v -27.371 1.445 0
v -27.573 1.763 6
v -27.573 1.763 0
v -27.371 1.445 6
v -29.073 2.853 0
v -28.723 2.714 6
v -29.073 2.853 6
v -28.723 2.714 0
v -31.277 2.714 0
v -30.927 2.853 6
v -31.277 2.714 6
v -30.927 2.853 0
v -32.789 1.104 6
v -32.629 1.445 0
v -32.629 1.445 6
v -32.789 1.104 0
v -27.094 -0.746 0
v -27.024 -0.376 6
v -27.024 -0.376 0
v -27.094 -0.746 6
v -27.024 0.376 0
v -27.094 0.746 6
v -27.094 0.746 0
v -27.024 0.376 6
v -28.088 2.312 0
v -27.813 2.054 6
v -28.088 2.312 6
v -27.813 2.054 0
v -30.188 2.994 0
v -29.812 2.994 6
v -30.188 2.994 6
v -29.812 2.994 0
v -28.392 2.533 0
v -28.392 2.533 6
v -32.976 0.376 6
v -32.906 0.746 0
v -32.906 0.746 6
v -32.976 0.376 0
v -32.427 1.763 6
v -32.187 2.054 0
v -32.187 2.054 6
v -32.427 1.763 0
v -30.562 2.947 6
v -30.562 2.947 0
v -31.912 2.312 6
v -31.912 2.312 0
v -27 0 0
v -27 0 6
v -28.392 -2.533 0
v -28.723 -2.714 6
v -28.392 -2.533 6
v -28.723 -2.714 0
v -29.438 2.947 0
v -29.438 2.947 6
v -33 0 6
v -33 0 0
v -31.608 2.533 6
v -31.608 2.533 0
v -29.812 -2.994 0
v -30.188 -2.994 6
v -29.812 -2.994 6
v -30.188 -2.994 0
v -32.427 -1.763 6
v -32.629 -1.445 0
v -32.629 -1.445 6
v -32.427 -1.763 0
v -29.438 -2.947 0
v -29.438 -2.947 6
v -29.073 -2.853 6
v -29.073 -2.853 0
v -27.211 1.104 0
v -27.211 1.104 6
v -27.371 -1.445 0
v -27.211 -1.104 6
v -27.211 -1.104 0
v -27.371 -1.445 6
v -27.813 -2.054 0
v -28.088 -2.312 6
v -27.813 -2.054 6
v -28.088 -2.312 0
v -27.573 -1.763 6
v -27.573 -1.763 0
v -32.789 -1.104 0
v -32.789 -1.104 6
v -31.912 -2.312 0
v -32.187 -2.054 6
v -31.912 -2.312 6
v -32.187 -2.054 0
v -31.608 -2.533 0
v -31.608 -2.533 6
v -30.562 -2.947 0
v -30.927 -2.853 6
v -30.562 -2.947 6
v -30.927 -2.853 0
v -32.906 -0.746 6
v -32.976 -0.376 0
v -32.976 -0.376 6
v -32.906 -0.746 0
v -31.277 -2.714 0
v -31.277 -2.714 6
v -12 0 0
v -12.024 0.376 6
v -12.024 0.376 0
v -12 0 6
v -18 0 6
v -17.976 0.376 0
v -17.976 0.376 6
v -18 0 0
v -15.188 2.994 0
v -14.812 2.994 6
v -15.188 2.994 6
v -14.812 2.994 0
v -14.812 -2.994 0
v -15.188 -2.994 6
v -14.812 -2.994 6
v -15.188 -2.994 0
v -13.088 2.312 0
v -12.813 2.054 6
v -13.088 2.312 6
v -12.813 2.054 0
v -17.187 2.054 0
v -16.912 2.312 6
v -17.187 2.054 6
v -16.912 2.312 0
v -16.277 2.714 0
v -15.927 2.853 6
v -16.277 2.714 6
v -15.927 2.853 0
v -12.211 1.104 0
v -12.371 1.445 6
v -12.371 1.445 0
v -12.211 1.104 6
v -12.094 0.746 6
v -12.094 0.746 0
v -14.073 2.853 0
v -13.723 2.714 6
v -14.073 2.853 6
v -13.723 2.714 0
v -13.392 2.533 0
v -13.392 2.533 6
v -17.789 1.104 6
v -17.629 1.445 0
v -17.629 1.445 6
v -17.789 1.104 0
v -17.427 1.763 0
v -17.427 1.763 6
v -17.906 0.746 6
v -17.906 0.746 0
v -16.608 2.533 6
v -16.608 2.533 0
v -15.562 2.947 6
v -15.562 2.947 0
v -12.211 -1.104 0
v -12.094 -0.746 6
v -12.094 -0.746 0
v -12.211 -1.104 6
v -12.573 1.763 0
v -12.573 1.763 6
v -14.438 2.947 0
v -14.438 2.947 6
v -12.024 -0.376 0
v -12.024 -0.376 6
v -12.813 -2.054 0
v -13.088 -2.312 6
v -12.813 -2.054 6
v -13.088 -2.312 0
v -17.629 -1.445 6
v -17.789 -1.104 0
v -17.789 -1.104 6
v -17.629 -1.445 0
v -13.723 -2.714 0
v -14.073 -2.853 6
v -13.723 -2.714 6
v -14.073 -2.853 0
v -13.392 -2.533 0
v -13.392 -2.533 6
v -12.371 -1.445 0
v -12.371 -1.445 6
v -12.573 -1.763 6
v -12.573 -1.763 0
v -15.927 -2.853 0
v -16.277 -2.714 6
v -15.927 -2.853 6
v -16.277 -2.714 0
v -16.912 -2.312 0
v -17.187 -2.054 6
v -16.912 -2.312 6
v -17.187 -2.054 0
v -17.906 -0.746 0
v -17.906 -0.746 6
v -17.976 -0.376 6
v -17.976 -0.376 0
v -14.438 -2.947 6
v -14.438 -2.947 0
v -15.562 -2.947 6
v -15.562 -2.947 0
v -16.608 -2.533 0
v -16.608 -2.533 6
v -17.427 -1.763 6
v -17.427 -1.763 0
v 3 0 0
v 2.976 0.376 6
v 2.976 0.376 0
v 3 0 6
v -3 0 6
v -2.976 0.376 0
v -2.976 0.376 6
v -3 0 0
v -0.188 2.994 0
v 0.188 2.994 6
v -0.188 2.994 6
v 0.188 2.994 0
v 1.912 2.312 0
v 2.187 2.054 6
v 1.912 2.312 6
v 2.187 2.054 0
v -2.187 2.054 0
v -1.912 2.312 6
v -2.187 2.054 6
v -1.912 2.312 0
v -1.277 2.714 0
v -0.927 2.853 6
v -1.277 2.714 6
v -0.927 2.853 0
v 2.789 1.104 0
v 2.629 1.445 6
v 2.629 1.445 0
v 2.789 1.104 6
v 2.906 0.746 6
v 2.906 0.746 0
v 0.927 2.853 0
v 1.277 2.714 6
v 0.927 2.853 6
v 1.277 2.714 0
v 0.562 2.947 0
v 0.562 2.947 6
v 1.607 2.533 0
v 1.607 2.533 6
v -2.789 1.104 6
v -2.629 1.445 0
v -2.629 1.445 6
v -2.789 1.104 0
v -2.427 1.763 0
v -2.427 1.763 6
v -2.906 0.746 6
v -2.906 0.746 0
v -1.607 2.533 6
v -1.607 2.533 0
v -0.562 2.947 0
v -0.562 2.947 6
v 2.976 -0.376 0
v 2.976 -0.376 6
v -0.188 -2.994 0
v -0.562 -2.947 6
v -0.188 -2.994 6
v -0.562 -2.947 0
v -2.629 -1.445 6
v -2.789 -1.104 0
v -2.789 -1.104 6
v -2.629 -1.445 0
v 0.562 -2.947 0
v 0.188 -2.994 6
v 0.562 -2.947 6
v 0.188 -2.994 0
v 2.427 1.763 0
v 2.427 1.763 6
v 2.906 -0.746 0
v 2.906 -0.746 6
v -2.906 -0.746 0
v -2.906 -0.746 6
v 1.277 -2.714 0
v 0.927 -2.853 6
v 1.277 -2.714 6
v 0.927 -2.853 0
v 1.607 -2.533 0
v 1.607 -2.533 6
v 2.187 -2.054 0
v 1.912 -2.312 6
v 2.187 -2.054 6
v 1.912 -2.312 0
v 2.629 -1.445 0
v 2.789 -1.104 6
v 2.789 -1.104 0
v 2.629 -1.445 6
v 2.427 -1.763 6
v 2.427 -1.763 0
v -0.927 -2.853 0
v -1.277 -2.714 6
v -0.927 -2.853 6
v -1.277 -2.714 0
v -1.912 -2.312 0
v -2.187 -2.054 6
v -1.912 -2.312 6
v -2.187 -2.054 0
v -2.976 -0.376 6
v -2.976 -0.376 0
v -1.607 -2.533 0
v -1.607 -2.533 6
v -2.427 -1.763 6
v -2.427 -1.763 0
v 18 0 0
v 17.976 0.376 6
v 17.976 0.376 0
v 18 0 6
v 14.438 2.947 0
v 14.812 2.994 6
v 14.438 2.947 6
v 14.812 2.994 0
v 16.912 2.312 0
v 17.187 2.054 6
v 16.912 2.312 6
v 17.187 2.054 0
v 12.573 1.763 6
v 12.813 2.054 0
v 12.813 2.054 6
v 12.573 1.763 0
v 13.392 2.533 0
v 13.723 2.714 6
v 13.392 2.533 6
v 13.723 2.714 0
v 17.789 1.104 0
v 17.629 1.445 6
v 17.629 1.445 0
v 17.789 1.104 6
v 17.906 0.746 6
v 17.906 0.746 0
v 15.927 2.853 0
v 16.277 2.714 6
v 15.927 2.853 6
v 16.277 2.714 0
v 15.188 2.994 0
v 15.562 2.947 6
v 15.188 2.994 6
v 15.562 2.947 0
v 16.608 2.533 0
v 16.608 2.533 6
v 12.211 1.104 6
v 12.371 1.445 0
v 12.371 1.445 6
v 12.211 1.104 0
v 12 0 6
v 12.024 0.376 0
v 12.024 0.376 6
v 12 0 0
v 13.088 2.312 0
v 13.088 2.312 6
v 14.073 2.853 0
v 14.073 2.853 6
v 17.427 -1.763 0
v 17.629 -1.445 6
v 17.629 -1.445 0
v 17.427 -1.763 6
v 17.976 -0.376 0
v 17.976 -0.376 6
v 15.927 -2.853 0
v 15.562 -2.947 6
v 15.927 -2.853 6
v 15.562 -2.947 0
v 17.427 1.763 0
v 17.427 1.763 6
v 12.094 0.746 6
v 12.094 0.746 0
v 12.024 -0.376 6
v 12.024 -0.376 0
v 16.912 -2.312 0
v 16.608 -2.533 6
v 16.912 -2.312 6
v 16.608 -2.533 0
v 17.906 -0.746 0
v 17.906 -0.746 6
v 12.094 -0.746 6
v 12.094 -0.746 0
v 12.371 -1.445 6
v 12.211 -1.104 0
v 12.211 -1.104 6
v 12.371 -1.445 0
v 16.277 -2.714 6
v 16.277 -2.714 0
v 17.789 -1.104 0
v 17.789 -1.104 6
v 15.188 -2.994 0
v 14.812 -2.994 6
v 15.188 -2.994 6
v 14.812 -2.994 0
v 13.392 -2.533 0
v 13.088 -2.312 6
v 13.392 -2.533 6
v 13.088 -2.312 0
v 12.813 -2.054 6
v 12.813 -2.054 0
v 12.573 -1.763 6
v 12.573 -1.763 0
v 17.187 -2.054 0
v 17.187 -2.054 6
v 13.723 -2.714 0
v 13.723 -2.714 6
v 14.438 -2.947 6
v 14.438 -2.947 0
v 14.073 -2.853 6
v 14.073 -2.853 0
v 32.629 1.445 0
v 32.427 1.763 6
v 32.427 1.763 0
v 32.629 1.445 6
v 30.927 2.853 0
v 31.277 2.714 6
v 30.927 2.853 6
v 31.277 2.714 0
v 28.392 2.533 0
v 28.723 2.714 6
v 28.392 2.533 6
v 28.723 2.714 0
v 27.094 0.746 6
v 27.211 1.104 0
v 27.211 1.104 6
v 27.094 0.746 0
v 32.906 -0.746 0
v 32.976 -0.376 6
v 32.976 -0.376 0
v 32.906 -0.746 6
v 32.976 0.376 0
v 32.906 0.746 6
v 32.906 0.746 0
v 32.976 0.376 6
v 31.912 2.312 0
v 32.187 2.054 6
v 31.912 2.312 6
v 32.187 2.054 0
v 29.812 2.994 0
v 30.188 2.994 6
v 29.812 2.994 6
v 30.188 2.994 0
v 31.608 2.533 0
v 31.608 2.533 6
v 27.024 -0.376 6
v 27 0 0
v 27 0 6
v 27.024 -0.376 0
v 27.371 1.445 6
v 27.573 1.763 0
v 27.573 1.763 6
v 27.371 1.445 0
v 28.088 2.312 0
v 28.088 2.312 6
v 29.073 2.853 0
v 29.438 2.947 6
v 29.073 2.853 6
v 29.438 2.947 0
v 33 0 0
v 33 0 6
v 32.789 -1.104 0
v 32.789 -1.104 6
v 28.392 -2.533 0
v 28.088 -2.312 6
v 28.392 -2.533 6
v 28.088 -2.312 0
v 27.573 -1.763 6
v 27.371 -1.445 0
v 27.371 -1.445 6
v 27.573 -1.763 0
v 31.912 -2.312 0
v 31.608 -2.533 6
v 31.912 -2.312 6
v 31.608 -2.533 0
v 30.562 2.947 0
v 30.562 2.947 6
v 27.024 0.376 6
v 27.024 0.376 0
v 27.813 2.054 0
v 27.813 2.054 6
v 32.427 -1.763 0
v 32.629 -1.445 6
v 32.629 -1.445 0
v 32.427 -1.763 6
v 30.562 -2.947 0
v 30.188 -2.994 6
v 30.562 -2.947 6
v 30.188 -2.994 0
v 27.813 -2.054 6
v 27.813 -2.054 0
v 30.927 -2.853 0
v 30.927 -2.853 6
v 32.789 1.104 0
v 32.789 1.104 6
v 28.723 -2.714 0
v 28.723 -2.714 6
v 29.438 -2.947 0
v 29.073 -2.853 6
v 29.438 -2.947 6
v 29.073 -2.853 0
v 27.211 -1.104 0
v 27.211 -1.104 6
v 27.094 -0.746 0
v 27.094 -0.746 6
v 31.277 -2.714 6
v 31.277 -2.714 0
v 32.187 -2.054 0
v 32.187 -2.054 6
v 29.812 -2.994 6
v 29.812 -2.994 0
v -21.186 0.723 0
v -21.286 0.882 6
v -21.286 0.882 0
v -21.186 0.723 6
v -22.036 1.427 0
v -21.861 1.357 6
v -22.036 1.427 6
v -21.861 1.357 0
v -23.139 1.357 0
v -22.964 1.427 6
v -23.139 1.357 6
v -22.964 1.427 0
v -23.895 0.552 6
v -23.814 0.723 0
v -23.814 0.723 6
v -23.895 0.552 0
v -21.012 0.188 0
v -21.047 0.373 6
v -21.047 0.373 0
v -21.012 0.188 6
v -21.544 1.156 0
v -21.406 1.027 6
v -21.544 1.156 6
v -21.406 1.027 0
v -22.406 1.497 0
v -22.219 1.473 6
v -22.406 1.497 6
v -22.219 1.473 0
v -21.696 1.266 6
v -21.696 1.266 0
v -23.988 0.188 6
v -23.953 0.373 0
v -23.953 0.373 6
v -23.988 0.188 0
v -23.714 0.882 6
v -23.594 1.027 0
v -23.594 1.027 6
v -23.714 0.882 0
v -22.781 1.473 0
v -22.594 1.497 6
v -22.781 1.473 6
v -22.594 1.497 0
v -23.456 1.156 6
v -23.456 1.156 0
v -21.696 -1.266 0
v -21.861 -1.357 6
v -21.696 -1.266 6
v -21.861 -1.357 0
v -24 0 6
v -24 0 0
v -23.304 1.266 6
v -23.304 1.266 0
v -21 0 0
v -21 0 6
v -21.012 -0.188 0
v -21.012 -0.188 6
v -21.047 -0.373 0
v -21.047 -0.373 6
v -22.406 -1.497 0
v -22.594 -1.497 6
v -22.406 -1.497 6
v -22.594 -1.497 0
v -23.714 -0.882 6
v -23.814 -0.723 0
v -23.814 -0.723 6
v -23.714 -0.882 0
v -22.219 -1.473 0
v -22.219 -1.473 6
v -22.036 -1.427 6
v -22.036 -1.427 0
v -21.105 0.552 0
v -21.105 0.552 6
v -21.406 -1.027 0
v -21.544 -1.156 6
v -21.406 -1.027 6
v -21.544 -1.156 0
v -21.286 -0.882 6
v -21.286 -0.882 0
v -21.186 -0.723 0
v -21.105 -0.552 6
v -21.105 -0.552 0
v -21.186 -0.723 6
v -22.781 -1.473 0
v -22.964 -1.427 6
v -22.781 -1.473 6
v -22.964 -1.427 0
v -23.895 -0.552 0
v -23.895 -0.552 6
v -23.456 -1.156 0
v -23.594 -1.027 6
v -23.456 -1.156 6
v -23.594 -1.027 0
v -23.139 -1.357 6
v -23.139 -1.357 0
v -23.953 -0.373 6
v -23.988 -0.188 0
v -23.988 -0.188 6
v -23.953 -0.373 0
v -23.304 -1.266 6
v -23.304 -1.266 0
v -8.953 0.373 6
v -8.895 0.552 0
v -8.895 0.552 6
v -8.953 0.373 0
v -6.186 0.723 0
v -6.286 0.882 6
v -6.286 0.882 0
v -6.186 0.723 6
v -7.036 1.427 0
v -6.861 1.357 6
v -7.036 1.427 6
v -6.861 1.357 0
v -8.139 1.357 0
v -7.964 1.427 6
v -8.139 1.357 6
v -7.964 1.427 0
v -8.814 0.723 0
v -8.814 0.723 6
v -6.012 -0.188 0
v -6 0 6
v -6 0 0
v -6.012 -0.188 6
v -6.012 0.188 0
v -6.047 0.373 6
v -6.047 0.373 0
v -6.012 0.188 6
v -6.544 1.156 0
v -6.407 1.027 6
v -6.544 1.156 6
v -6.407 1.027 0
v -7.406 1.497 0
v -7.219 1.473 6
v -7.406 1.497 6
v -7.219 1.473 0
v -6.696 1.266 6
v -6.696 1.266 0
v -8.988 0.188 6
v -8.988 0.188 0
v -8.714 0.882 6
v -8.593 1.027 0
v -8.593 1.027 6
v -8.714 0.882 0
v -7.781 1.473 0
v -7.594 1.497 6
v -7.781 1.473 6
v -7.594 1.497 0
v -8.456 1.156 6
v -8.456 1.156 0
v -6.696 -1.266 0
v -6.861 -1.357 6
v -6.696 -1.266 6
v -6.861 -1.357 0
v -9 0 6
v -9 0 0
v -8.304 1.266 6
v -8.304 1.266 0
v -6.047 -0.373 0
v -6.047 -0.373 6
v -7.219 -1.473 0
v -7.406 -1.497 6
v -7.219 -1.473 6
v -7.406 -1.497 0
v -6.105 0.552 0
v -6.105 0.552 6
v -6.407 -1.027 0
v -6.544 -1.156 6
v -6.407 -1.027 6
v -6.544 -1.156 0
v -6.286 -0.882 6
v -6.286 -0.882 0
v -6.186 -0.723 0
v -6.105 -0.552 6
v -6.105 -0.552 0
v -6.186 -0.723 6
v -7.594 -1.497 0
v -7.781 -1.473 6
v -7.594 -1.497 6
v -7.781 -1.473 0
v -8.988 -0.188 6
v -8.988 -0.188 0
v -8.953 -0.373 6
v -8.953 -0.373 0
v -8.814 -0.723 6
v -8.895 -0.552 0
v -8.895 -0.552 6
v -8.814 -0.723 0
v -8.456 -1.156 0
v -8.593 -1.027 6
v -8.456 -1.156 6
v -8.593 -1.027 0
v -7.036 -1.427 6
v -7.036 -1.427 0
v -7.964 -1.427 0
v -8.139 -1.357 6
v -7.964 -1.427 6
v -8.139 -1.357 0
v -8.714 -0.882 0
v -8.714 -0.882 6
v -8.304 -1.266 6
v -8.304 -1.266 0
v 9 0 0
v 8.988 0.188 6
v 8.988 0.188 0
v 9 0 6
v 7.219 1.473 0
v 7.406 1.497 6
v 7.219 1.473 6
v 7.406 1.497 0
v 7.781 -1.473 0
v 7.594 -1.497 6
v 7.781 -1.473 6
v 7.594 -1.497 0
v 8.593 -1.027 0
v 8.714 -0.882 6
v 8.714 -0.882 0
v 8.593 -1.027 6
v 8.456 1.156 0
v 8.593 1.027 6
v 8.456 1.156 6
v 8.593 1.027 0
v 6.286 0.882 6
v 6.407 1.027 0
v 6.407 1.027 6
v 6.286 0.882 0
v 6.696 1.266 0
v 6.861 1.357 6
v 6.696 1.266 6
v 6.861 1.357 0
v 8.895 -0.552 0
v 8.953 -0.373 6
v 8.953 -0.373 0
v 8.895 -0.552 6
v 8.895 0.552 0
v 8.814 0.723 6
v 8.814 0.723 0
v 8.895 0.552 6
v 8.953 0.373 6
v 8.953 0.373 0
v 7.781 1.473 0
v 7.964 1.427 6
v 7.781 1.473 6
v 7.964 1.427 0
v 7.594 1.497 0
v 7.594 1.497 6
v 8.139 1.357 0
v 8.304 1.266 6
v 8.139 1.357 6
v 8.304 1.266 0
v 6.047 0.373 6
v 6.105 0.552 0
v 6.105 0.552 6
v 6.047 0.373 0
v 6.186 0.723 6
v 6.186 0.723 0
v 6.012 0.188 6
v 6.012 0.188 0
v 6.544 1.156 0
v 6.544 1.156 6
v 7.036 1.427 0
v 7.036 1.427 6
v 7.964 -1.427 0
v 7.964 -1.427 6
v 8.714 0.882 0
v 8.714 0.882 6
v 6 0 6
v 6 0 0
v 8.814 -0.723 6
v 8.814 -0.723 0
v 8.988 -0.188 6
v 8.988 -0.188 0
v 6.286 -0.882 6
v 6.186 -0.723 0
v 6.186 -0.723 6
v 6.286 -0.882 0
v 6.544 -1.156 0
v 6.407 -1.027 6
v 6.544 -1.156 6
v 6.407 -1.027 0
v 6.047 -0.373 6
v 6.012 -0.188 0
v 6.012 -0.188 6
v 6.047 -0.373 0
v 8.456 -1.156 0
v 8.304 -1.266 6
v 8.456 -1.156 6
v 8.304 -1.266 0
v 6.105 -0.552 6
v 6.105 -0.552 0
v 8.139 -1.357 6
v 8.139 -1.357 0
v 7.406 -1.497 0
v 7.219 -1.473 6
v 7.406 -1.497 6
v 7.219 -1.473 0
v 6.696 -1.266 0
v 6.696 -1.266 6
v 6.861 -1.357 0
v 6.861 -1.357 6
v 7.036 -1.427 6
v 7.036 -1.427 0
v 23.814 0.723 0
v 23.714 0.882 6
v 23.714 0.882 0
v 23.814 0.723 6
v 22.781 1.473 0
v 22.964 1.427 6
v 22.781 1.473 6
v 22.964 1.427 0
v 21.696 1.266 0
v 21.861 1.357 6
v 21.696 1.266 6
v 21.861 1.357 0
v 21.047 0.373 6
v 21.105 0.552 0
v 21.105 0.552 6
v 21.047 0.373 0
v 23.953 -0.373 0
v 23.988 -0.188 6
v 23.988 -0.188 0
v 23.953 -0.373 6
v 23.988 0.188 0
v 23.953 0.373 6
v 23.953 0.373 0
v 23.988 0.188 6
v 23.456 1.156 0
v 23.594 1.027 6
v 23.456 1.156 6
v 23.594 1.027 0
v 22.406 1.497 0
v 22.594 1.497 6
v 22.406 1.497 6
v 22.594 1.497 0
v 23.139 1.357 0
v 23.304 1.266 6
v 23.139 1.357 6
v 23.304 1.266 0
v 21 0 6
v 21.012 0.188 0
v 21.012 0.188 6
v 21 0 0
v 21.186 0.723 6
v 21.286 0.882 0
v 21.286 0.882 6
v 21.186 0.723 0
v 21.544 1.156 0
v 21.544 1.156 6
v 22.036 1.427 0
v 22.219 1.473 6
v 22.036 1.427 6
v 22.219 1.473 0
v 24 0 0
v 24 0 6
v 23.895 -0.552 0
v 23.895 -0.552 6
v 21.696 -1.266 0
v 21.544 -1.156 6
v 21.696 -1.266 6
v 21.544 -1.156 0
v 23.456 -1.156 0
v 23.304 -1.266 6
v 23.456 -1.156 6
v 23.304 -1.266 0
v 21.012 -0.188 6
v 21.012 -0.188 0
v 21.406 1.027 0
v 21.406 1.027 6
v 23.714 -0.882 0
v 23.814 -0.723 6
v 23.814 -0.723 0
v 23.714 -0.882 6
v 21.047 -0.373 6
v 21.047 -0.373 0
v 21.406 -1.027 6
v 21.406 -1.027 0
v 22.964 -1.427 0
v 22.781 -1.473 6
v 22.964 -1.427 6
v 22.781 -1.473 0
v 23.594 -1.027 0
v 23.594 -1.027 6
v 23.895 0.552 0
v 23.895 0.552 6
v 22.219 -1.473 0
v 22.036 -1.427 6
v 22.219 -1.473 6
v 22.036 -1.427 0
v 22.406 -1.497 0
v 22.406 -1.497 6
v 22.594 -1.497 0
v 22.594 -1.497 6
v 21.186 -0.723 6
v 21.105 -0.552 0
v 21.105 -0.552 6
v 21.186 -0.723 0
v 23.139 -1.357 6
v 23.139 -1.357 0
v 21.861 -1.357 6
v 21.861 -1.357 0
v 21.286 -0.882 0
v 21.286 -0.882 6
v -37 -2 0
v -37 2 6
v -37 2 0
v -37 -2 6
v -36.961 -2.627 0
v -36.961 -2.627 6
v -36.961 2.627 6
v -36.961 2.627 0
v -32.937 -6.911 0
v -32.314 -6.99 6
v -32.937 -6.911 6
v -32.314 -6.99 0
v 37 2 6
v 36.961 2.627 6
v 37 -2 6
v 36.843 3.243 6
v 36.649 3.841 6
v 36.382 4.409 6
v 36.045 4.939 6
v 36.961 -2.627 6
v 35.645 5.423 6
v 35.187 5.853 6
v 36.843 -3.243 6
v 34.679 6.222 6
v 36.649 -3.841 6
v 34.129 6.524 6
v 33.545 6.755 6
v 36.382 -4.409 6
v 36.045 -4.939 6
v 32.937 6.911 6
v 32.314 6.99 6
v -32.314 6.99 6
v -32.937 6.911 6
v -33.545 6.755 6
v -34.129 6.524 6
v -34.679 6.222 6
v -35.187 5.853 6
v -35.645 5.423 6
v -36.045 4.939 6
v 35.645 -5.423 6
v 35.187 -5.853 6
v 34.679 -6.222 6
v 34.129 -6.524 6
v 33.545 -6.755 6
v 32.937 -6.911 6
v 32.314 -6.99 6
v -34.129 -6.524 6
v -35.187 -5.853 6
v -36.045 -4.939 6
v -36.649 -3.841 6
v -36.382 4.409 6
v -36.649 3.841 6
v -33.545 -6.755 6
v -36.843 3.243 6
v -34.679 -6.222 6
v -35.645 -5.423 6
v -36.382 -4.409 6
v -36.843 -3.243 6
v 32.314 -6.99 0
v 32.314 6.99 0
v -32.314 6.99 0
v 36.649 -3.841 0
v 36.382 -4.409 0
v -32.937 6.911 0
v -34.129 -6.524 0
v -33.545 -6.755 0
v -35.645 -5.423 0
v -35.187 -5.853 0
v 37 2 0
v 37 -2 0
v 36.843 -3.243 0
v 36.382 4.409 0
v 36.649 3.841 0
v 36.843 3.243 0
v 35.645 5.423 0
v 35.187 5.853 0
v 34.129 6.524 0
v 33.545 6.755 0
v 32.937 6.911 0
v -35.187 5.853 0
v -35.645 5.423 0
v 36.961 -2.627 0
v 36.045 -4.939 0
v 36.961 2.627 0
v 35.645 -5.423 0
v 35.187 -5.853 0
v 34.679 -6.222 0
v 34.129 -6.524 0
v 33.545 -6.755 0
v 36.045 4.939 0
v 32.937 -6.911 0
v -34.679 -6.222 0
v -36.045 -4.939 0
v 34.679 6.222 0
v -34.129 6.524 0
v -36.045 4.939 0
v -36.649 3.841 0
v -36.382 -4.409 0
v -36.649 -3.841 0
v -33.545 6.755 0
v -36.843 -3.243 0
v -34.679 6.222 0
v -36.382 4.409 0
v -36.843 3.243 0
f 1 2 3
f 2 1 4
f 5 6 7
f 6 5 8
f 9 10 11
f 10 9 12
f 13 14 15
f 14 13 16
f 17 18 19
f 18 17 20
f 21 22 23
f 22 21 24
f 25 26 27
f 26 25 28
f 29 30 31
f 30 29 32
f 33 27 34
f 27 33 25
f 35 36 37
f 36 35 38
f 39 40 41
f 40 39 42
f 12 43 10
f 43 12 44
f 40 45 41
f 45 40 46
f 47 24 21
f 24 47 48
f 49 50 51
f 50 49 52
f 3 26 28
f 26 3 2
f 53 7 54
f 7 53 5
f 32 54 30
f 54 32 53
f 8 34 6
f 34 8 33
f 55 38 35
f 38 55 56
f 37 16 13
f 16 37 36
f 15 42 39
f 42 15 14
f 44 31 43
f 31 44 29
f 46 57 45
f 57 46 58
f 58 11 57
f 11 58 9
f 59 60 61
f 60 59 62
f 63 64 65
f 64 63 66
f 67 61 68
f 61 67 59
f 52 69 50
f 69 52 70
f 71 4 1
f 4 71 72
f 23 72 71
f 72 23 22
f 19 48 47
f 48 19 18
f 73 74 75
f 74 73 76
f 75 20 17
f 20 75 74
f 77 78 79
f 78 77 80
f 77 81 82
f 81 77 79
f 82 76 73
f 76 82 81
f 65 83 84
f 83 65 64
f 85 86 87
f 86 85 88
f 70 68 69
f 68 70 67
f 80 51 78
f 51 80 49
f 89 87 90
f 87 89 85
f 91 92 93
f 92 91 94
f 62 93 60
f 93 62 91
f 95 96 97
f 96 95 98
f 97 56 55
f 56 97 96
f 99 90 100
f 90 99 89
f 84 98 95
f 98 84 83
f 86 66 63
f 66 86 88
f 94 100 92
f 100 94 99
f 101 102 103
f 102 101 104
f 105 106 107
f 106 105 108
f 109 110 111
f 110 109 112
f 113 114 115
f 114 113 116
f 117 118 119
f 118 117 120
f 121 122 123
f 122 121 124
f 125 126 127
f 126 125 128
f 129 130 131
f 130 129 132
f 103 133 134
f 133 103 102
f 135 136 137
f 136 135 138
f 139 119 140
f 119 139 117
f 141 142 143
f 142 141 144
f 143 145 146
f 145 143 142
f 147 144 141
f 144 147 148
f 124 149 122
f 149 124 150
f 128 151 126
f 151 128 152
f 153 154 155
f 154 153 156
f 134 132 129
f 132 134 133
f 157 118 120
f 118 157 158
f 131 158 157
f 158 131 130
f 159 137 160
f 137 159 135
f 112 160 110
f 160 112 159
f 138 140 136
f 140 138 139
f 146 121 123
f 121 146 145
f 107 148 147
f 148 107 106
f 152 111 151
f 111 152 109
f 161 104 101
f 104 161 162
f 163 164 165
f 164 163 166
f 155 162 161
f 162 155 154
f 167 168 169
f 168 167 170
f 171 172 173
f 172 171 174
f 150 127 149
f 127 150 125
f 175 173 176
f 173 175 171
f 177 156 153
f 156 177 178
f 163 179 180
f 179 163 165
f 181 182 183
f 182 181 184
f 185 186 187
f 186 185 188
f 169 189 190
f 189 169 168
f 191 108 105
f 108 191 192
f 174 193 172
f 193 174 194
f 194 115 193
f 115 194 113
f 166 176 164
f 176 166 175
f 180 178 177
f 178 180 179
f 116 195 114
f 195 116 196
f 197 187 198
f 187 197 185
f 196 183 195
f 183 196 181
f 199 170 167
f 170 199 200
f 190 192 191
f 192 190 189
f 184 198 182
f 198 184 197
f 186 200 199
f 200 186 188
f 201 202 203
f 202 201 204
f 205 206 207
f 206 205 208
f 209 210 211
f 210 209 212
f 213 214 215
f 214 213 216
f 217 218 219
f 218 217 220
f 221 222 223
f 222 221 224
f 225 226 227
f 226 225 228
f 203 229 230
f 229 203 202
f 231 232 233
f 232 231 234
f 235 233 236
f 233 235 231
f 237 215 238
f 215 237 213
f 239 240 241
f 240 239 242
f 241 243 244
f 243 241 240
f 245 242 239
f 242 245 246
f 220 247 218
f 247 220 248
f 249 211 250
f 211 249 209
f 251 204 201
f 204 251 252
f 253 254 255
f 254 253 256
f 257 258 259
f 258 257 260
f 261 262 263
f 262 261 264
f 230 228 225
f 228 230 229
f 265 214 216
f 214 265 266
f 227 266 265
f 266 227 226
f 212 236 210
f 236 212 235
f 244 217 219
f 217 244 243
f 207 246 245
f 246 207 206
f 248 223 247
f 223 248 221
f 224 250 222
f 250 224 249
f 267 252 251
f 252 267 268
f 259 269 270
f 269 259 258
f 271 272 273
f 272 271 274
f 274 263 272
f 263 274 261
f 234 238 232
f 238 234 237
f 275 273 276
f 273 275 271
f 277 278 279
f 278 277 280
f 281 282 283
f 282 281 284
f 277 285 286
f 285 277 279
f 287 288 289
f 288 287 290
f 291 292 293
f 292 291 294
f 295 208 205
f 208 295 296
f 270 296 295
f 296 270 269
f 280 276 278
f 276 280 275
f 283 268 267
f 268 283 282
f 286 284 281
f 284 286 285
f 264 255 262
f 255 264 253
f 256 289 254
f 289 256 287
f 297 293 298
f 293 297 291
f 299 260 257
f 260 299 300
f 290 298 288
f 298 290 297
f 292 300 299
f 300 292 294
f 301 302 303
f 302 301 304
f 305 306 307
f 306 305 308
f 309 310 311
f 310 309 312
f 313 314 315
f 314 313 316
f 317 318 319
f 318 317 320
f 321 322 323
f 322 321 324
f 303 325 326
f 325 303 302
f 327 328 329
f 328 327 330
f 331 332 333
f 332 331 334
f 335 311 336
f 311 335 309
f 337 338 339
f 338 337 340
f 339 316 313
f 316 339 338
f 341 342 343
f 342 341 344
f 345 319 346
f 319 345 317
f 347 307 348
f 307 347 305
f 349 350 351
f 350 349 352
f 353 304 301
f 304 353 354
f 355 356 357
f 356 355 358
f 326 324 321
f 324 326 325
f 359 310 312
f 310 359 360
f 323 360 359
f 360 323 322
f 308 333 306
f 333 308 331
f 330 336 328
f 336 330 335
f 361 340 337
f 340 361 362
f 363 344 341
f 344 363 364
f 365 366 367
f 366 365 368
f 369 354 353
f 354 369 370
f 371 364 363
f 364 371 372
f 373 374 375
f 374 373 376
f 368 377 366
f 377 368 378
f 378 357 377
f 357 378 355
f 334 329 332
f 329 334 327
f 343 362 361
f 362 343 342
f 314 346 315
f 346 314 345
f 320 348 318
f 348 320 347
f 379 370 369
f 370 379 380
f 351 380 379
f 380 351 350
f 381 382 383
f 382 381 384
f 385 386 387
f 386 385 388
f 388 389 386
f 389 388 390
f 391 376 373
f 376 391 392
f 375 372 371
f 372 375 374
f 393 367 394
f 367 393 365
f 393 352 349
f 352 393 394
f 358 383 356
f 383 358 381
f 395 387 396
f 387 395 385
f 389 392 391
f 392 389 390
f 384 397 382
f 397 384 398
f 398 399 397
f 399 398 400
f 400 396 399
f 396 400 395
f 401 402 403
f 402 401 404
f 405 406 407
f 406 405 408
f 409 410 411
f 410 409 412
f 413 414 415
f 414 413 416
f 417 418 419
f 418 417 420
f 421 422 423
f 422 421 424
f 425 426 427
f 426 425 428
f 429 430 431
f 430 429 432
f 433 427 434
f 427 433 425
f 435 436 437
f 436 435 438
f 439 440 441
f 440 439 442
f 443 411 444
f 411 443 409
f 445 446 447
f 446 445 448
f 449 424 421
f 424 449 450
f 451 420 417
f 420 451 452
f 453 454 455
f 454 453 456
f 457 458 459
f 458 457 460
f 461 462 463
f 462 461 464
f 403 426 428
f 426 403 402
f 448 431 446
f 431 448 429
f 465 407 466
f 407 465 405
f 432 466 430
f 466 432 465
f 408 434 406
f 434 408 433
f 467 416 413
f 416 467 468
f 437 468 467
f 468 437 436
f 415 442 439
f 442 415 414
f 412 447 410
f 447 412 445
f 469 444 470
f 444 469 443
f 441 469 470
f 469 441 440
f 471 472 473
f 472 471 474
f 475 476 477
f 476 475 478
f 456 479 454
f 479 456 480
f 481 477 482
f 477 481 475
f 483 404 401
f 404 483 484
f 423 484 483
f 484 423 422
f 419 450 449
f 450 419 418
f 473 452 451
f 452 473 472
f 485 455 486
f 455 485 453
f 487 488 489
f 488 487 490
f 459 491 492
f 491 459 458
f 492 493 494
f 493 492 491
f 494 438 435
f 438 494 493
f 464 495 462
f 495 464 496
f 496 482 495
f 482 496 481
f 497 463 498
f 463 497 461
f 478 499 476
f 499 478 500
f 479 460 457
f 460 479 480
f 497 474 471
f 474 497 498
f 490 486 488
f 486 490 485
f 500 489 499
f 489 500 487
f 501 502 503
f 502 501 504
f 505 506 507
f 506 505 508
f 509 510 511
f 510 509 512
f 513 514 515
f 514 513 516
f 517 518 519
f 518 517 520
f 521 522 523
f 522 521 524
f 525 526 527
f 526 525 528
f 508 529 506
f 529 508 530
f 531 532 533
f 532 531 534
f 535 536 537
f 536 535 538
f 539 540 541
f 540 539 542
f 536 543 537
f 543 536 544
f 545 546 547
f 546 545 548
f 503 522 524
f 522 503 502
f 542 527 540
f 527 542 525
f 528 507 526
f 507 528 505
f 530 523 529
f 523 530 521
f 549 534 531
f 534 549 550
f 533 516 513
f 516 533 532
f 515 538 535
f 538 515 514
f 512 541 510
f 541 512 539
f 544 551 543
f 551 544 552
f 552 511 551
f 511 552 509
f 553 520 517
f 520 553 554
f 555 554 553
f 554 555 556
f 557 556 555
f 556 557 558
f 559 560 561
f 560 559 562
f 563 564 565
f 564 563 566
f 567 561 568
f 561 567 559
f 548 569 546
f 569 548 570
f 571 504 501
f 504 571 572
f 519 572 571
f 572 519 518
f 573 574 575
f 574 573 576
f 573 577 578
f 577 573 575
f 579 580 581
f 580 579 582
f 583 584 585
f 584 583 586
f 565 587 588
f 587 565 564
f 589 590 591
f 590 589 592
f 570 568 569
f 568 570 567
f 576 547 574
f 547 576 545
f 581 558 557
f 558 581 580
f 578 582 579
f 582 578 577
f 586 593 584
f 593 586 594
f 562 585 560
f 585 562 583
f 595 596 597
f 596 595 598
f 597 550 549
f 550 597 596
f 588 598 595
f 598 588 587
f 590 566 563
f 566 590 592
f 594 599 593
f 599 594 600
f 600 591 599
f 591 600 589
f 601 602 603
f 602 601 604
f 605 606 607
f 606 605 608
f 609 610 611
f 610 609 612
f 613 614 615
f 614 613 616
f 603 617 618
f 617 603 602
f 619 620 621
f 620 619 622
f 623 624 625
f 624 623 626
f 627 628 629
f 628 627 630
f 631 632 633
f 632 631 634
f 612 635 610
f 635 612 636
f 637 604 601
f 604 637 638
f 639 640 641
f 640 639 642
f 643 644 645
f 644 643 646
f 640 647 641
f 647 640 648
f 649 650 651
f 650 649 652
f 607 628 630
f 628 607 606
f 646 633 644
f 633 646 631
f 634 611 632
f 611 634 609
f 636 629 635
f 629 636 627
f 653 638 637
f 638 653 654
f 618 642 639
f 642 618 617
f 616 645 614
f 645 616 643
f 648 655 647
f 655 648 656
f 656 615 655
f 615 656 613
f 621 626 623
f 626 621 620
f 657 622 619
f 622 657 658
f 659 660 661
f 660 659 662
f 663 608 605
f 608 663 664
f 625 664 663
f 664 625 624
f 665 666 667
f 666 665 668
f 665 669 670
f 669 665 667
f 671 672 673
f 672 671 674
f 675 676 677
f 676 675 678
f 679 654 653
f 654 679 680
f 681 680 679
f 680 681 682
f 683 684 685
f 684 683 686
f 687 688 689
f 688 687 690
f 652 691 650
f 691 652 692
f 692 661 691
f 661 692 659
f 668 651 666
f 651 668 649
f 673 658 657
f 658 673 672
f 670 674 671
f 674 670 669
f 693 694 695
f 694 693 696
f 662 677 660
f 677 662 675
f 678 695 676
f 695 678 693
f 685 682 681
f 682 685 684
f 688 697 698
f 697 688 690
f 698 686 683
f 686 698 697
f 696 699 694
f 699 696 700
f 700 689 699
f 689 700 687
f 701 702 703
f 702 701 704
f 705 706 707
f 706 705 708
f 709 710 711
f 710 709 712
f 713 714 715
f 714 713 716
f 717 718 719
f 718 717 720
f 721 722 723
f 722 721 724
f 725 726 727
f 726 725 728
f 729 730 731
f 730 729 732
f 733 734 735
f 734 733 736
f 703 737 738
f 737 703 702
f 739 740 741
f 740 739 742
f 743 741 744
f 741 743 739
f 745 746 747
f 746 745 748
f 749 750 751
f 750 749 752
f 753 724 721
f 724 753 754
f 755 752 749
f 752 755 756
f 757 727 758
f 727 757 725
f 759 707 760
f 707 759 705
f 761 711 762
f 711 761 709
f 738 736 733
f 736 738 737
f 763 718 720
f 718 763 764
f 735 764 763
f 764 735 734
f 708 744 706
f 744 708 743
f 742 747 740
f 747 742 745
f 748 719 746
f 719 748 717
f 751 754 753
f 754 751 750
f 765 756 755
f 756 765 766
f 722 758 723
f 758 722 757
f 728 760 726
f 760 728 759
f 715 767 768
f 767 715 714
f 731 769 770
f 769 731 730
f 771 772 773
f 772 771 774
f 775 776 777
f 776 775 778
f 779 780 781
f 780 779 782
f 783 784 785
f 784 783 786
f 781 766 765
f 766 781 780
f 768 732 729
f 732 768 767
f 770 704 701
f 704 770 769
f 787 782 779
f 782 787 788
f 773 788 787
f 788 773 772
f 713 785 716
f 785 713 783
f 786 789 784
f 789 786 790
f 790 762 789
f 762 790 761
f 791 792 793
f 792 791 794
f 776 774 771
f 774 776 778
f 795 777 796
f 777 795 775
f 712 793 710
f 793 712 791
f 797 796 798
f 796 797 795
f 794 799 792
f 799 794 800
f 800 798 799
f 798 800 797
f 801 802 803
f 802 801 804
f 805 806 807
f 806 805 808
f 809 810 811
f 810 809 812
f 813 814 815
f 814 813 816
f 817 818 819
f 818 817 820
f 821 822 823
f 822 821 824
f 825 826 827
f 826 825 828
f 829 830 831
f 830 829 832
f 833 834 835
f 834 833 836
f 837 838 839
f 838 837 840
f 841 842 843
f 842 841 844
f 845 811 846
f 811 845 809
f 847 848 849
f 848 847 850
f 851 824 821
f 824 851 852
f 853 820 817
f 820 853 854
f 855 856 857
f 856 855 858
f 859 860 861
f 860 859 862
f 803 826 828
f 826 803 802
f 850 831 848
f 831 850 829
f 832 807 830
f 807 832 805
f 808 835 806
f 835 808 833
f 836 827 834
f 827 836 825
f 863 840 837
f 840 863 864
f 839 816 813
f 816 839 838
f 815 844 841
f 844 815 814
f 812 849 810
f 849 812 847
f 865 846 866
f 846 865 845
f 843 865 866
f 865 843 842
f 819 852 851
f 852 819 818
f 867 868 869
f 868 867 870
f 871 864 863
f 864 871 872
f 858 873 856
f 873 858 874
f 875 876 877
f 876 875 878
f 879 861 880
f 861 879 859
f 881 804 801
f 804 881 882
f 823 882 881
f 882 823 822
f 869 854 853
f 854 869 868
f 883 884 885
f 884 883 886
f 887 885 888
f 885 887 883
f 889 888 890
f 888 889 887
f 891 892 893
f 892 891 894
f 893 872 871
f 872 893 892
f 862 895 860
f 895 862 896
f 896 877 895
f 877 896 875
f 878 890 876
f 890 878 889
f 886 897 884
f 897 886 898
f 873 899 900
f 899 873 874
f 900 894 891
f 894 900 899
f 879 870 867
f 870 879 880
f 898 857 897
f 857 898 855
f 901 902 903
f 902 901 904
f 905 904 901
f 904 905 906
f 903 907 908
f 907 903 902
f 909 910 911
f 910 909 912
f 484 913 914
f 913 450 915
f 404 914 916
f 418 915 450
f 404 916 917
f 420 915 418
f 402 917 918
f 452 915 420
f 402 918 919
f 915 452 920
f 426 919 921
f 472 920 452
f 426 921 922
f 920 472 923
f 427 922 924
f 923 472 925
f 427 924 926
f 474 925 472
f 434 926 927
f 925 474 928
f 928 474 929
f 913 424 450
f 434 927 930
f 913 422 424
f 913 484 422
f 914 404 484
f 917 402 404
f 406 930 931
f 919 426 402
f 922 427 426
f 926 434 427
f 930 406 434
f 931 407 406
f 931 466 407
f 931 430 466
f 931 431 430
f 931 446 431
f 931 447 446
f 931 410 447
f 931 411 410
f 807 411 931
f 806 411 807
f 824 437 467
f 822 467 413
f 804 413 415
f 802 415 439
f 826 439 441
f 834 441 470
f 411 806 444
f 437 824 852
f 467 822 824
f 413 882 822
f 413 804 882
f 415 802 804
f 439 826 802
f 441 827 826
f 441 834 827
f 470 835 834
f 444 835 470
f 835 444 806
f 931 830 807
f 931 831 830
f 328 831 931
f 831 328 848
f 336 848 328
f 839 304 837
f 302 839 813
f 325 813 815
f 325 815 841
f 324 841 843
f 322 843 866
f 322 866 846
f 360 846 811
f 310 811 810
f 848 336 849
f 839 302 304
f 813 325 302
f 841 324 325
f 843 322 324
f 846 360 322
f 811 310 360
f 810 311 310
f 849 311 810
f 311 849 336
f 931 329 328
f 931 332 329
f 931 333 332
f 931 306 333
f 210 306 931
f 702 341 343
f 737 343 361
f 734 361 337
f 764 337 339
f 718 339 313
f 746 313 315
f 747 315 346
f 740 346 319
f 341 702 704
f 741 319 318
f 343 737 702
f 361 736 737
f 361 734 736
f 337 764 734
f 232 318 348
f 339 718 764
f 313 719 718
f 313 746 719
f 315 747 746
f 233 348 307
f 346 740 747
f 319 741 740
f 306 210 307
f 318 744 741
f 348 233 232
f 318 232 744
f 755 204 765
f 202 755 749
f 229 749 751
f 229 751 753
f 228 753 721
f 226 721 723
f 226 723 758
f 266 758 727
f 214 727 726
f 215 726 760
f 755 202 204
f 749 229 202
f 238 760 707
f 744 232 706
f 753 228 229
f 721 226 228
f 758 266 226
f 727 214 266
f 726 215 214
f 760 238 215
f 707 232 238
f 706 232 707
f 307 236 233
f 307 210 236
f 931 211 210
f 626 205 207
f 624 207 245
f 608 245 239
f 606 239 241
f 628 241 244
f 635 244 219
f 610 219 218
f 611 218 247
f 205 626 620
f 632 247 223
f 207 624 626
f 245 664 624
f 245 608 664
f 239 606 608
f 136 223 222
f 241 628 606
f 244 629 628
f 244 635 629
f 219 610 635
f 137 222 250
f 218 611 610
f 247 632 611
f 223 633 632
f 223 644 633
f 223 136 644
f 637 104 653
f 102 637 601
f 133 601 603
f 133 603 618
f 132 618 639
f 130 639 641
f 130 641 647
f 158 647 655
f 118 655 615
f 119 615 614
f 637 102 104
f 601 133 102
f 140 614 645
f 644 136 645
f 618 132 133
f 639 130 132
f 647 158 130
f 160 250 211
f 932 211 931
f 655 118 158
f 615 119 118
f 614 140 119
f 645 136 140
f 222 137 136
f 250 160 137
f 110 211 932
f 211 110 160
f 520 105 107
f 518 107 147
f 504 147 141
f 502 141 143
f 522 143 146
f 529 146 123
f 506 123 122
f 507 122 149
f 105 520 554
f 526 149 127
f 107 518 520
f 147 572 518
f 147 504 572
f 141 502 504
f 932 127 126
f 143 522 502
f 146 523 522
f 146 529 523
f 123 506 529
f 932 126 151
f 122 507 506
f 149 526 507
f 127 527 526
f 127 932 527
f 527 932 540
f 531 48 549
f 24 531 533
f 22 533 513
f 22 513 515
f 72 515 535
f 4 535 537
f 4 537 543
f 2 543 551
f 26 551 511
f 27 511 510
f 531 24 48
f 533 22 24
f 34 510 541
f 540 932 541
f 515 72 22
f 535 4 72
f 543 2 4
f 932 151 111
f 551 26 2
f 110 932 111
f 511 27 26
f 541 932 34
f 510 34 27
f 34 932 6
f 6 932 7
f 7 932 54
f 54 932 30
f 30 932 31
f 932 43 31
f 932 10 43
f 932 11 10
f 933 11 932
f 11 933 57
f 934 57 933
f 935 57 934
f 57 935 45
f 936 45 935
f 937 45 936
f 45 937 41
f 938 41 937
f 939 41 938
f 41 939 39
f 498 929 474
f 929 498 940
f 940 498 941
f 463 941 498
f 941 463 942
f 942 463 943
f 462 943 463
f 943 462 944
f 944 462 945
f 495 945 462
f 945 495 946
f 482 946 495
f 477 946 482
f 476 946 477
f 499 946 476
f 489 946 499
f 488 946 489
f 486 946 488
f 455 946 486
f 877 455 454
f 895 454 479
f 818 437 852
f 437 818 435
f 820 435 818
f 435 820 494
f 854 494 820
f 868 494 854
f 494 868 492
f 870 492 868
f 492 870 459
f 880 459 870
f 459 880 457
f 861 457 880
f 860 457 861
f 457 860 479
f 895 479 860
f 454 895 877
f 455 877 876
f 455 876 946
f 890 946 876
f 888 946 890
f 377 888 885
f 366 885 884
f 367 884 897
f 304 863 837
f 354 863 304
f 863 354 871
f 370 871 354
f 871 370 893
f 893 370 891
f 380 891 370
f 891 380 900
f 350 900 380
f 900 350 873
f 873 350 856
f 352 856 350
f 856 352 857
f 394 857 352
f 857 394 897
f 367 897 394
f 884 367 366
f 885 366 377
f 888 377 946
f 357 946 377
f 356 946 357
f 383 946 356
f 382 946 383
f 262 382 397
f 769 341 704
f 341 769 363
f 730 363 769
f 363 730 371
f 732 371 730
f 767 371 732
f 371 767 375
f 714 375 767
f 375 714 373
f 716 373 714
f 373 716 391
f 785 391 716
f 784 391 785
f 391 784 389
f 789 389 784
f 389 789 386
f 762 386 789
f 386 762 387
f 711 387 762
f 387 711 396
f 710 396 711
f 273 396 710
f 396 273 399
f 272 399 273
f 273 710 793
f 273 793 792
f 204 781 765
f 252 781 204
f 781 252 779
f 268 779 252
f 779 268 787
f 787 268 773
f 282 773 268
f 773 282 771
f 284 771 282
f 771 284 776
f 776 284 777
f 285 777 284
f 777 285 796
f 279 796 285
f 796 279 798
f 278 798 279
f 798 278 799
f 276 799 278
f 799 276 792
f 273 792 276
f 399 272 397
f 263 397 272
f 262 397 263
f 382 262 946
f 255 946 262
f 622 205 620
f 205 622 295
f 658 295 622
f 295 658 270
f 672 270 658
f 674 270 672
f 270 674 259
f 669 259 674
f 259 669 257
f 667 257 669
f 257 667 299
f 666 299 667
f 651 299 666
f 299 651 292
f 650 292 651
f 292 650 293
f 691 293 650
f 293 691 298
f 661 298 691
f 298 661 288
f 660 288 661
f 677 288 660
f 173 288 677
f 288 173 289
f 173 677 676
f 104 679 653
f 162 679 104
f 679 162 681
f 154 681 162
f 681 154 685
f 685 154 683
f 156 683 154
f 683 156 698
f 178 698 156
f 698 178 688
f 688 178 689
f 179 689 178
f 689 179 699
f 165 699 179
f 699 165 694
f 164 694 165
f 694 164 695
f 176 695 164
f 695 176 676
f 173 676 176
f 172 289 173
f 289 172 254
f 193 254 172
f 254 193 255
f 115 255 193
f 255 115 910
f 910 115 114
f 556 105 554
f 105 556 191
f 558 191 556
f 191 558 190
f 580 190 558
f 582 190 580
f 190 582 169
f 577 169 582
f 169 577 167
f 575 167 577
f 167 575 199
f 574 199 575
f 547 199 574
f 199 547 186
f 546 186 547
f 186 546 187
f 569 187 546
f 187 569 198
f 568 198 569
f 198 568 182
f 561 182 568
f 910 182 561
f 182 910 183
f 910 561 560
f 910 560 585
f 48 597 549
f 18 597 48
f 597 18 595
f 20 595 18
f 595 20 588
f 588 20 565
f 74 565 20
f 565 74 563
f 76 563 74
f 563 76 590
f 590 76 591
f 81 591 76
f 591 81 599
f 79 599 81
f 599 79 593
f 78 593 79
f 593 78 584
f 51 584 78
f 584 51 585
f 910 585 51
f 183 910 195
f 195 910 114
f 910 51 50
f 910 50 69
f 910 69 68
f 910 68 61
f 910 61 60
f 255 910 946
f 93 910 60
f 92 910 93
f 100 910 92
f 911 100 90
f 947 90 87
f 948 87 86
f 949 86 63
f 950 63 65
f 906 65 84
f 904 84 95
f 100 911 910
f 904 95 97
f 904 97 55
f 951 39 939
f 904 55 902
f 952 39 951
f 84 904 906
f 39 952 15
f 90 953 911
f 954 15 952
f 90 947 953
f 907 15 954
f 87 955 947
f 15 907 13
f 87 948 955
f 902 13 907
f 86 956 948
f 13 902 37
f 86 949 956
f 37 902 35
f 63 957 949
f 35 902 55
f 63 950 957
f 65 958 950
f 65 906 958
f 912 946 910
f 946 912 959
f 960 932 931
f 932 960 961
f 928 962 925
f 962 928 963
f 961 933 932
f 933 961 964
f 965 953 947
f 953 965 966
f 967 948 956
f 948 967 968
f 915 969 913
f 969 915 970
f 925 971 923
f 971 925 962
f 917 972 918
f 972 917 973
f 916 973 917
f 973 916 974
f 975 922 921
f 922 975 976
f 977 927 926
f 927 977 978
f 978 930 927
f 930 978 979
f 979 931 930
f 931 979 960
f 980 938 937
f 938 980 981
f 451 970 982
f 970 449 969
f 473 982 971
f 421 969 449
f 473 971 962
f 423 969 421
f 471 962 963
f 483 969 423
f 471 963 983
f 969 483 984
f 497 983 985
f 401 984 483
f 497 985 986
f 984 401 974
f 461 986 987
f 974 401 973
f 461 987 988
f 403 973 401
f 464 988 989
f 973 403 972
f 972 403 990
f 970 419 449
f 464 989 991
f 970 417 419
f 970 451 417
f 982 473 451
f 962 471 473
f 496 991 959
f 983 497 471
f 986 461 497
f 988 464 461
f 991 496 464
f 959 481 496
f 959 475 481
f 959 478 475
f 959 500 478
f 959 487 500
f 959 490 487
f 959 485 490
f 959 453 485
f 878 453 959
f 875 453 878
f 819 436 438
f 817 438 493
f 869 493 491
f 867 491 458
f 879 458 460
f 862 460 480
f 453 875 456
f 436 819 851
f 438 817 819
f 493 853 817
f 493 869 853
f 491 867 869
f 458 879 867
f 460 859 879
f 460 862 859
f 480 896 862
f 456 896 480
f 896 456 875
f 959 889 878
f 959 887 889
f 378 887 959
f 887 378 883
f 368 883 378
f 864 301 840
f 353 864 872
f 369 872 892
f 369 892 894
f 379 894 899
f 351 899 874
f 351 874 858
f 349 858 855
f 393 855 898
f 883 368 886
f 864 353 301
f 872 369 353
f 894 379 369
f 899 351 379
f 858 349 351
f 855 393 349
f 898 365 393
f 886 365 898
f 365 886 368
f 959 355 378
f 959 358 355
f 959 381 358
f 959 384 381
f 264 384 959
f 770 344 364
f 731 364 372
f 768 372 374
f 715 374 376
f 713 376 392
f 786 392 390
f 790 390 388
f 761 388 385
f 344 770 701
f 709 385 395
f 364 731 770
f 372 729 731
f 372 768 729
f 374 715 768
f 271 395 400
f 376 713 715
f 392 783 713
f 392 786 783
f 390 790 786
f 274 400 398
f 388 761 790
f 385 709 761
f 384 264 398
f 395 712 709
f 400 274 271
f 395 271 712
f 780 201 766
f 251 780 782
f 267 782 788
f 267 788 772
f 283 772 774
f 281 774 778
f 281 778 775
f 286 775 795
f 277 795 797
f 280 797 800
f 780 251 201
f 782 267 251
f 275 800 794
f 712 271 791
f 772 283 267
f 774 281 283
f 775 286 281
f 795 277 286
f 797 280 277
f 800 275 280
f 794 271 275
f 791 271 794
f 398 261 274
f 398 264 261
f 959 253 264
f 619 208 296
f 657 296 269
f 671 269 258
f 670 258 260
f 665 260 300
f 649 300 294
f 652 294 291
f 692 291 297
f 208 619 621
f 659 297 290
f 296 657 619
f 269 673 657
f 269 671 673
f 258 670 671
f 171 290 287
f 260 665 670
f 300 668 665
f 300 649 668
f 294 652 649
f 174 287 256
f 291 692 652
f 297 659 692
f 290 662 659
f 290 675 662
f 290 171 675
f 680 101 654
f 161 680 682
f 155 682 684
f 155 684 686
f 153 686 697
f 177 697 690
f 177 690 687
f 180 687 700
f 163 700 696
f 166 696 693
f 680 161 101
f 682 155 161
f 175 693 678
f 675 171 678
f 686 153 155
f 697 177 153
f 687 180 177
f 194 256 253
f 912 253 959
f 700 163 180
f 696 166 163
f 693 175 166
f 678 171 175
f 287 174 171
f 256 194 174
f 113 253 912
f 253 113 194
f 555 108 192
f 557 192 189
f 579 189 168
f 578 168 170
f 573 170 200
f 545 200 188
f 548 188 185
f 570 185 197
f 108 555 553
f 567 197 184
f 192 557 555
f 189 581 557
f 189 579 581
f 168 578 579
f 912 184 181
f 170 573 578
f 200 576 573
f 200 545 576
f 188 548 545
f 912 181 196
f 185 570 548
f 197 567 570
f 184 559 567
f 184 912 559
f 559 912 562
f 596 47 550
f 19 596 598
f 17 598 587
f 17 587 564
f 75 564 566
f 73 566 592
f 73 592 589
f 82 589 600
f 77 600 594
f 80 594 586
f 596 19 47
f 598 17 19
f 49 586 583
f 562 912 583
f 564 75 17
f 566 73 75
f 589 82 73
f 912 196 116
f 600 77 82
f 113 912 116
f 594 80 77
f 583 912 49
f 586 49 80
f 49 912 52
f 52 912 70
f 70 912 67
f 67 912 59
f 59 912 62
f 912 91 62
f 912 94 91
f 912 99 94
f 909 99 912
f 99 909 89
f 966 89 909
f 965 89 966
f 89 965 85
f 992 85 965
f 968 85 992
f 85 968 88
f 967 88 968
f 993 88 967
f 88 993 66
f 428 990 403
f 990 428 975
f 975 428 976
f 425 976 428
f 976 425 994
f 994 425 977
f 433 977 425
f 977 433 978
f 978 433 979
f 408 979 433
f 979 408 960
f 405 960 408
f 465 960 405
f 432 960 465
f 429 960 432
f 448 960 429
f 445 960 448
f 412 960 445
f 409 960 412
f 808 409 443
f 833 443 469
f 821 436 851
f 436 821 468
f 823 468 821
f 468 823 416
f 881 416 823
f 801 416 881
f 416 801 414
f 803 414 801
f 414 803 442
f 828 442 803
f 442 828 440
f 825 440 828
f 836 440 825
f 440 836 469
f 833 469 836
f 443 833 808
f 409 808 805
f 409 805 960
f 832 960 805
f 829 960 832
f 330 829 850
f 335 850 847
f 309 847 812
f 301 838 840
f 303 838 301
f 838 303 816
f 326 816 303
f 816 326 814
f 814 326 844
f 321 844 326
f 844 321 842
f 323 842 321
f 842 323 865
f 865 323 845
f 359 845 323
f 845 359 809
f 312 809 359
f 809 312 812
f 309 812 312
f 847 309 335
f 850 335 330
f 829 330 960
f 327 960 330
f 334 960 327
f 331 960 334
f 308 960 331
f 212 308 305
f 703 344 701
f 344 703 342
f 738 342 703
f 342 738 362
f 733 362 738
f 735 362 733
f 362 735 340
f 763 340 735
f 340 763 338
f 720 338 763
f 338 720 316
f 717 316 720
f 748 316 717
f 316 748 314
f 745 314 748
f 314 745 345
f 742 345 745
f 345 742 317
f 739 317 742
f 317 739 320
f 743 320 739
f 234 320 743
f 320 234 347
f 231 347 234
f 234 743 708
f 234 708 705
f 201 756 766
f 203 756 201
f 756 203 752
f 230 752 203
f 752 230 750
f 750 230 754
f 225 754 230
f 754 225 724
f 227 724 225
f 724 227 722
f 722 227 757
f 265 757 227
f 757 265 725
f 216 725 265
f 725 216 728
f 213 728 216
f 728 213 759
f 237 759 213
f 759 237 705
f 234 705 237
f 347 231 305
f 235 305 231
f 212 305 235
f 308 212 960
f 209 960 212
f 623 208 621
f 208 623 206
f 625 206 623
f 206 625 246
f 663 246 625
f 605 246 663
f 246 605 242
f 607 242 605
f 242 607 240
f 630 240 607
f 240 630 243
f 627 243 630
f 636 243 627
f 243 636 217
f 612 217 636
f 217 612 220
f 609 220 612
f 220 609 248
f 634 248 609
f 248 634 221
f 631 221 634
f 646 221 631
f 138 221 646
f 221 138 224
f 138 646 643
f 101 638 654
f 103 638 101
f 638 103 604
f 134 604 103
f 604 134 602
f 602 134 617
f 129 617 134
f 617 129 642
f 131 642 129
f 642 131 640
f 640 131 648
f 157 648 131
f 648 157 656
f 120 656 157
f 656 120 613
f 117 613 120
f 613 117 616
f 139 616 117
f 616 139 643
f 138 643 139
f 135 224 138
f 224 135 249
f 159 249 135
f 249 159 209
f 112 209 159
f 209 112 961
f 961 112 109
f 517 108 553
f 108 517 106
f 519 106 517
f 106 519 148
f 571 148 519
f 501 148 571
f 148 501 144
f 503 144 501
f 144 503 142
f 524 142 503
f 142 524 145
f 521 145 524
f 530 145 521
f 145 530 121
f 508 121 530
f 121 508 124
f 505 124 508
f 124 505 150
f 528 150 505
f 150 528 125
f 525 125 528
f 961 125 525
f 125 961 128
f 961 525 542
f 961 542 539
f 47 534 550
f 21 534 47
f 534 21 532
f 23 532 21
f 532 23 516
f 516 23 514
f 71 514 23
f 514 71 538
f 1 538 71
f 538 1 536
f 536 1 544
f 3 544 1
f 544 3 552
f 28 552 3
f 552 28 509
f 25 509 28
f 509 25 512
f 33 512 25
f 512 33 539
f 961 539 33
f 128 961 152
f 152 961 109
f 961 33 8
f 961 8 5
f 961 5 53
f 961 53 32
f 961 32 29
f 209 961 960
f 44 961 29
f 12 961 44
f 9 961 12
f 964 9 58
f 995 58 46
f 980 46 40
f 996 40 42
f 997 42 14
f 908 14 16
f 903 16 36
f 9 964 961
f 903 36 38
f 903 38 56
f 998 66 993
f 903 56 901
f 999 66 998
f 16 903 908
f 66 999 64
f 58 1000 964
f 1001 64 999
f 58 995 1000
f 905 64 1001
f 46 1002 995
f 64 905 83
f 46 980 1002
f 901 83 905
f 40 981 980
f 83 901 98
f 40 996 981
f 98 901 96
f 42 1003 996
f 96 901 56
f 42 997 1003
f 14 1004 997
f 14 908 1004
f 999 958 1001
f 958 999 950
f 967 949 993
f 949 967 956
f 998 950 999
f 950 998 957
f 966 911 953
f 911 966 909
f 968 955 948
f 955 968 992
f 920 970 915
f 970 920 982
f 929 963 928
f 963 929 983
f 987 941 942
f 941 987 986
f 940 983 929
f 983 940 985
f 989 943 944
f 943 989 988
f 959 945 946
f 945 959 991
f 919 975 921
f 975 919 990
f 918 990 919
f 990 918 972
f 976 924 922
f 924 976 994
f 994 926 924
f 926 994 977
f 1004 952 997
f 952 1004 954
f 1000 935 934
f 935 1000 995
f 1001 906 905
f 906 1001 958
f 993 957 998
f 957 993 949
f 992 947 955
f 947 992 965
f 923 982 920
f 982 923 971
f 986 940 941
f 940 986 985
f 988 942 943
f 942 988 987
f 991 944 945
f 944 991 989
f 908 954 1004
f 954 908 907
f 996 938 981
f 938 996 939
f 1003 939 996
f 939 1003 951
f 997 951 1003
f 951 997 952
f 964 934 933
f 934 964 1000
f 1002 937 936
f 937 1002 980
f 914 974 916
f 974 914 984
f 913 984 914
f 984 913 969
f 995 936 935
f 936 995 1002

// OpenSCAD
$fn = 50;


difference() {
	union() {
		translate(v = [0, 0, 0]) {
			rotate(a = [0, 0, 0]) {
				hull() {
					translate(v = [-32.0000000000, 2.0000000000, 0]) {
						rotate(a = [0, 0, 0]) {
							translate(v = [0, 0, 0]) {
								rotate(a = [0, 0, 0]) {
									cylinder(h = 6, r = 5);
								}
							}
						}
					}
					translate(v = [32.0000000000, 2.0000000000, 0]) {
						rotate(a = [0, 0, 0]) {
							translate(v = [0, 0, 0]) {
								rotate(a = [0, 0, 0]) {
									cylinder(h = 6, r = 5);
								}
							}
						}
					}
					translate(v = [-32.0000000000, -2.0000000000, 0]) {
						rotate(a = [0, 0, 0]) {
							translate(v = [0, 0, 0]) {
								rotate(a = [0, 0, 0]) {
									cylinder(h = 6, r = 5);
								}
							}
						}
					}
					translate(v = [32.0000000000, -2.0000000000, 0]) {
						rotate(a = [0, 0, 0]) {
							translate(v = [0, 0, 0]) {
								rotate(a = [0, 0, 0]) {
									cylinder(h = 6, r = 5);
								}
							}
						}
					}
				}
			}
		}
	}
	union() {
		translate(v = [-30.0000000000, 0.0000000000, 0]) {
			rotate(a = [0, 0, 0]) {
				translate(v = [0, 0, -50]) {
					rotate(a = [0, 0, 0]) {
						cylinder(h = 100, r = 3.0000000000);
					}
				}
			}
		}
		translate(v = [-15.0000000000, 0.0000000000, 0]) {
			rotate(a = [0, 0, 0]) {
				translate(v = [0, 0, -50]) {
					rotate(a = [0, 0, 0]) {
						cylinder(h = 100, r = 3.0000000000);
					}
				}
			}
		}
		translate(v = [0.0000000000, 0.0000000000, 0]) {
			rotate(a = [0, 0, 0]) {
				translate(v = [0, 0, -50]) {
					rotate(a = [0, 0, 0]) {
						cylinder(h = 100, r = 3.0000000000);
					}
				}
			}
		}
		translate(v = [15.0000000000, 0.0000000000, 0]) {
			rotate(a = [0, 0, 0]) {
				translate(v = [0, 0, -50]) {
					rotate(a = [0, 0, 0]) {
						cylinder(h = 100, r = 3.0000000000);
					}
				}
			}
		}
		translate(v = [30.0000000000, 0.0000000000, 0]) {
			rotate(a = [0, 0, 0]) {
				translate(v = [0, 0, -50]) {
					rotate(a = [0, 0, 0]) {
						cylinder(h = 100, r = 3.0000000000);
					}
				}
			}
		}
		translate(v = [-30.0000000000, 0.0000000000, 0]) {
			rotate(a = [0, 0, 0]) {
				translate(v = [0, 0, -50]) {
					rotate(a = [0, 0, 0]) {
						cylinder(h = 100, r = 1.5000000000);
					}
				}
			}
		}
		translate(v = [-22.5000000000, 0.0000000000, 0]) {
			rotate(a = [0, 0, 0]) {
				translate(v = [0, 0, -50]) {
					rotate(a = [0, 0, 0]) {
						cylinder(h = 100, r = 1.5000000000);
					}
				}
			}
		}
		translate(v = [-15.0000000000, 0.0000000000, 0]) {
			rotate(a = [0, 0, 0]) {
				translate(v = [0, 0, -50]) {
					rotate(a = [0, 0, 0]) {
						cylinder(h = 100, r = 1.5000000000);
					}
				}
			}
		}
		translate(v = [-7.5000000000, 0.0000000000, 0]) {
			rotate(a = [0, 0, 0]) {
				translate(v = [0, 0, -50]) {
					rotate(a = [0, 0, 0]) {
						cylinder(h = 100, r = 1.5000000000);
					}
				}
			}
		}
		translate(v = [0.0000000000, 0.0000000000, 0]) {
			rotate(a = [0, 0, 0]) {
				translate(v = [0, 0, -50]) {
					rotate(a = [0, 0, 0]) {
						cylinder(h = 100, r = 1.5000000000);
					}
				}
			}
		}
		translate(v = [7.5000000000, 0.0000000000, 0]) {
			rotate(a = [0, 0, 0]) {
				translate(v = [0, 0, -50]) {
					rotate(a = [0, 0, 0]) {
						cylinder(h = 100, r = 1.5000000000);
					}
				}
			}
		}
		translate(v = [15.0000000000, 0.0000000000, 0]) {
			rotate(a = [0, 0, 0]) {
				translate(v = [0, 0, -50]) {
					rotate(a = [0, 0, 0]) {
						cylinder(h = 100, r = 1.5000000000);
					}
				}
			}
		}
		translate(v = [22.5000000000, 0.0000000000, 0]) {
			rotate(a = [0, 0, 0]) {
				translate(v = [0, 0, -50]) {
					rotate(a = [0, 0, 0]) {
						cylinder(h = 100, r = 1.5000000000);
					}
				}
			}
		}
		translate(v = [30.0000000000, 0.0000000000, 0]) {
			rotate(a = [0, 0, 0]) {
				translate(v = [0, 0, -50]) {
					rotate(a = [0, 0, 0]) {
						cylinder(h = 100, r = 1.5000000000);
					}
				}
			}
		}
	}
}
